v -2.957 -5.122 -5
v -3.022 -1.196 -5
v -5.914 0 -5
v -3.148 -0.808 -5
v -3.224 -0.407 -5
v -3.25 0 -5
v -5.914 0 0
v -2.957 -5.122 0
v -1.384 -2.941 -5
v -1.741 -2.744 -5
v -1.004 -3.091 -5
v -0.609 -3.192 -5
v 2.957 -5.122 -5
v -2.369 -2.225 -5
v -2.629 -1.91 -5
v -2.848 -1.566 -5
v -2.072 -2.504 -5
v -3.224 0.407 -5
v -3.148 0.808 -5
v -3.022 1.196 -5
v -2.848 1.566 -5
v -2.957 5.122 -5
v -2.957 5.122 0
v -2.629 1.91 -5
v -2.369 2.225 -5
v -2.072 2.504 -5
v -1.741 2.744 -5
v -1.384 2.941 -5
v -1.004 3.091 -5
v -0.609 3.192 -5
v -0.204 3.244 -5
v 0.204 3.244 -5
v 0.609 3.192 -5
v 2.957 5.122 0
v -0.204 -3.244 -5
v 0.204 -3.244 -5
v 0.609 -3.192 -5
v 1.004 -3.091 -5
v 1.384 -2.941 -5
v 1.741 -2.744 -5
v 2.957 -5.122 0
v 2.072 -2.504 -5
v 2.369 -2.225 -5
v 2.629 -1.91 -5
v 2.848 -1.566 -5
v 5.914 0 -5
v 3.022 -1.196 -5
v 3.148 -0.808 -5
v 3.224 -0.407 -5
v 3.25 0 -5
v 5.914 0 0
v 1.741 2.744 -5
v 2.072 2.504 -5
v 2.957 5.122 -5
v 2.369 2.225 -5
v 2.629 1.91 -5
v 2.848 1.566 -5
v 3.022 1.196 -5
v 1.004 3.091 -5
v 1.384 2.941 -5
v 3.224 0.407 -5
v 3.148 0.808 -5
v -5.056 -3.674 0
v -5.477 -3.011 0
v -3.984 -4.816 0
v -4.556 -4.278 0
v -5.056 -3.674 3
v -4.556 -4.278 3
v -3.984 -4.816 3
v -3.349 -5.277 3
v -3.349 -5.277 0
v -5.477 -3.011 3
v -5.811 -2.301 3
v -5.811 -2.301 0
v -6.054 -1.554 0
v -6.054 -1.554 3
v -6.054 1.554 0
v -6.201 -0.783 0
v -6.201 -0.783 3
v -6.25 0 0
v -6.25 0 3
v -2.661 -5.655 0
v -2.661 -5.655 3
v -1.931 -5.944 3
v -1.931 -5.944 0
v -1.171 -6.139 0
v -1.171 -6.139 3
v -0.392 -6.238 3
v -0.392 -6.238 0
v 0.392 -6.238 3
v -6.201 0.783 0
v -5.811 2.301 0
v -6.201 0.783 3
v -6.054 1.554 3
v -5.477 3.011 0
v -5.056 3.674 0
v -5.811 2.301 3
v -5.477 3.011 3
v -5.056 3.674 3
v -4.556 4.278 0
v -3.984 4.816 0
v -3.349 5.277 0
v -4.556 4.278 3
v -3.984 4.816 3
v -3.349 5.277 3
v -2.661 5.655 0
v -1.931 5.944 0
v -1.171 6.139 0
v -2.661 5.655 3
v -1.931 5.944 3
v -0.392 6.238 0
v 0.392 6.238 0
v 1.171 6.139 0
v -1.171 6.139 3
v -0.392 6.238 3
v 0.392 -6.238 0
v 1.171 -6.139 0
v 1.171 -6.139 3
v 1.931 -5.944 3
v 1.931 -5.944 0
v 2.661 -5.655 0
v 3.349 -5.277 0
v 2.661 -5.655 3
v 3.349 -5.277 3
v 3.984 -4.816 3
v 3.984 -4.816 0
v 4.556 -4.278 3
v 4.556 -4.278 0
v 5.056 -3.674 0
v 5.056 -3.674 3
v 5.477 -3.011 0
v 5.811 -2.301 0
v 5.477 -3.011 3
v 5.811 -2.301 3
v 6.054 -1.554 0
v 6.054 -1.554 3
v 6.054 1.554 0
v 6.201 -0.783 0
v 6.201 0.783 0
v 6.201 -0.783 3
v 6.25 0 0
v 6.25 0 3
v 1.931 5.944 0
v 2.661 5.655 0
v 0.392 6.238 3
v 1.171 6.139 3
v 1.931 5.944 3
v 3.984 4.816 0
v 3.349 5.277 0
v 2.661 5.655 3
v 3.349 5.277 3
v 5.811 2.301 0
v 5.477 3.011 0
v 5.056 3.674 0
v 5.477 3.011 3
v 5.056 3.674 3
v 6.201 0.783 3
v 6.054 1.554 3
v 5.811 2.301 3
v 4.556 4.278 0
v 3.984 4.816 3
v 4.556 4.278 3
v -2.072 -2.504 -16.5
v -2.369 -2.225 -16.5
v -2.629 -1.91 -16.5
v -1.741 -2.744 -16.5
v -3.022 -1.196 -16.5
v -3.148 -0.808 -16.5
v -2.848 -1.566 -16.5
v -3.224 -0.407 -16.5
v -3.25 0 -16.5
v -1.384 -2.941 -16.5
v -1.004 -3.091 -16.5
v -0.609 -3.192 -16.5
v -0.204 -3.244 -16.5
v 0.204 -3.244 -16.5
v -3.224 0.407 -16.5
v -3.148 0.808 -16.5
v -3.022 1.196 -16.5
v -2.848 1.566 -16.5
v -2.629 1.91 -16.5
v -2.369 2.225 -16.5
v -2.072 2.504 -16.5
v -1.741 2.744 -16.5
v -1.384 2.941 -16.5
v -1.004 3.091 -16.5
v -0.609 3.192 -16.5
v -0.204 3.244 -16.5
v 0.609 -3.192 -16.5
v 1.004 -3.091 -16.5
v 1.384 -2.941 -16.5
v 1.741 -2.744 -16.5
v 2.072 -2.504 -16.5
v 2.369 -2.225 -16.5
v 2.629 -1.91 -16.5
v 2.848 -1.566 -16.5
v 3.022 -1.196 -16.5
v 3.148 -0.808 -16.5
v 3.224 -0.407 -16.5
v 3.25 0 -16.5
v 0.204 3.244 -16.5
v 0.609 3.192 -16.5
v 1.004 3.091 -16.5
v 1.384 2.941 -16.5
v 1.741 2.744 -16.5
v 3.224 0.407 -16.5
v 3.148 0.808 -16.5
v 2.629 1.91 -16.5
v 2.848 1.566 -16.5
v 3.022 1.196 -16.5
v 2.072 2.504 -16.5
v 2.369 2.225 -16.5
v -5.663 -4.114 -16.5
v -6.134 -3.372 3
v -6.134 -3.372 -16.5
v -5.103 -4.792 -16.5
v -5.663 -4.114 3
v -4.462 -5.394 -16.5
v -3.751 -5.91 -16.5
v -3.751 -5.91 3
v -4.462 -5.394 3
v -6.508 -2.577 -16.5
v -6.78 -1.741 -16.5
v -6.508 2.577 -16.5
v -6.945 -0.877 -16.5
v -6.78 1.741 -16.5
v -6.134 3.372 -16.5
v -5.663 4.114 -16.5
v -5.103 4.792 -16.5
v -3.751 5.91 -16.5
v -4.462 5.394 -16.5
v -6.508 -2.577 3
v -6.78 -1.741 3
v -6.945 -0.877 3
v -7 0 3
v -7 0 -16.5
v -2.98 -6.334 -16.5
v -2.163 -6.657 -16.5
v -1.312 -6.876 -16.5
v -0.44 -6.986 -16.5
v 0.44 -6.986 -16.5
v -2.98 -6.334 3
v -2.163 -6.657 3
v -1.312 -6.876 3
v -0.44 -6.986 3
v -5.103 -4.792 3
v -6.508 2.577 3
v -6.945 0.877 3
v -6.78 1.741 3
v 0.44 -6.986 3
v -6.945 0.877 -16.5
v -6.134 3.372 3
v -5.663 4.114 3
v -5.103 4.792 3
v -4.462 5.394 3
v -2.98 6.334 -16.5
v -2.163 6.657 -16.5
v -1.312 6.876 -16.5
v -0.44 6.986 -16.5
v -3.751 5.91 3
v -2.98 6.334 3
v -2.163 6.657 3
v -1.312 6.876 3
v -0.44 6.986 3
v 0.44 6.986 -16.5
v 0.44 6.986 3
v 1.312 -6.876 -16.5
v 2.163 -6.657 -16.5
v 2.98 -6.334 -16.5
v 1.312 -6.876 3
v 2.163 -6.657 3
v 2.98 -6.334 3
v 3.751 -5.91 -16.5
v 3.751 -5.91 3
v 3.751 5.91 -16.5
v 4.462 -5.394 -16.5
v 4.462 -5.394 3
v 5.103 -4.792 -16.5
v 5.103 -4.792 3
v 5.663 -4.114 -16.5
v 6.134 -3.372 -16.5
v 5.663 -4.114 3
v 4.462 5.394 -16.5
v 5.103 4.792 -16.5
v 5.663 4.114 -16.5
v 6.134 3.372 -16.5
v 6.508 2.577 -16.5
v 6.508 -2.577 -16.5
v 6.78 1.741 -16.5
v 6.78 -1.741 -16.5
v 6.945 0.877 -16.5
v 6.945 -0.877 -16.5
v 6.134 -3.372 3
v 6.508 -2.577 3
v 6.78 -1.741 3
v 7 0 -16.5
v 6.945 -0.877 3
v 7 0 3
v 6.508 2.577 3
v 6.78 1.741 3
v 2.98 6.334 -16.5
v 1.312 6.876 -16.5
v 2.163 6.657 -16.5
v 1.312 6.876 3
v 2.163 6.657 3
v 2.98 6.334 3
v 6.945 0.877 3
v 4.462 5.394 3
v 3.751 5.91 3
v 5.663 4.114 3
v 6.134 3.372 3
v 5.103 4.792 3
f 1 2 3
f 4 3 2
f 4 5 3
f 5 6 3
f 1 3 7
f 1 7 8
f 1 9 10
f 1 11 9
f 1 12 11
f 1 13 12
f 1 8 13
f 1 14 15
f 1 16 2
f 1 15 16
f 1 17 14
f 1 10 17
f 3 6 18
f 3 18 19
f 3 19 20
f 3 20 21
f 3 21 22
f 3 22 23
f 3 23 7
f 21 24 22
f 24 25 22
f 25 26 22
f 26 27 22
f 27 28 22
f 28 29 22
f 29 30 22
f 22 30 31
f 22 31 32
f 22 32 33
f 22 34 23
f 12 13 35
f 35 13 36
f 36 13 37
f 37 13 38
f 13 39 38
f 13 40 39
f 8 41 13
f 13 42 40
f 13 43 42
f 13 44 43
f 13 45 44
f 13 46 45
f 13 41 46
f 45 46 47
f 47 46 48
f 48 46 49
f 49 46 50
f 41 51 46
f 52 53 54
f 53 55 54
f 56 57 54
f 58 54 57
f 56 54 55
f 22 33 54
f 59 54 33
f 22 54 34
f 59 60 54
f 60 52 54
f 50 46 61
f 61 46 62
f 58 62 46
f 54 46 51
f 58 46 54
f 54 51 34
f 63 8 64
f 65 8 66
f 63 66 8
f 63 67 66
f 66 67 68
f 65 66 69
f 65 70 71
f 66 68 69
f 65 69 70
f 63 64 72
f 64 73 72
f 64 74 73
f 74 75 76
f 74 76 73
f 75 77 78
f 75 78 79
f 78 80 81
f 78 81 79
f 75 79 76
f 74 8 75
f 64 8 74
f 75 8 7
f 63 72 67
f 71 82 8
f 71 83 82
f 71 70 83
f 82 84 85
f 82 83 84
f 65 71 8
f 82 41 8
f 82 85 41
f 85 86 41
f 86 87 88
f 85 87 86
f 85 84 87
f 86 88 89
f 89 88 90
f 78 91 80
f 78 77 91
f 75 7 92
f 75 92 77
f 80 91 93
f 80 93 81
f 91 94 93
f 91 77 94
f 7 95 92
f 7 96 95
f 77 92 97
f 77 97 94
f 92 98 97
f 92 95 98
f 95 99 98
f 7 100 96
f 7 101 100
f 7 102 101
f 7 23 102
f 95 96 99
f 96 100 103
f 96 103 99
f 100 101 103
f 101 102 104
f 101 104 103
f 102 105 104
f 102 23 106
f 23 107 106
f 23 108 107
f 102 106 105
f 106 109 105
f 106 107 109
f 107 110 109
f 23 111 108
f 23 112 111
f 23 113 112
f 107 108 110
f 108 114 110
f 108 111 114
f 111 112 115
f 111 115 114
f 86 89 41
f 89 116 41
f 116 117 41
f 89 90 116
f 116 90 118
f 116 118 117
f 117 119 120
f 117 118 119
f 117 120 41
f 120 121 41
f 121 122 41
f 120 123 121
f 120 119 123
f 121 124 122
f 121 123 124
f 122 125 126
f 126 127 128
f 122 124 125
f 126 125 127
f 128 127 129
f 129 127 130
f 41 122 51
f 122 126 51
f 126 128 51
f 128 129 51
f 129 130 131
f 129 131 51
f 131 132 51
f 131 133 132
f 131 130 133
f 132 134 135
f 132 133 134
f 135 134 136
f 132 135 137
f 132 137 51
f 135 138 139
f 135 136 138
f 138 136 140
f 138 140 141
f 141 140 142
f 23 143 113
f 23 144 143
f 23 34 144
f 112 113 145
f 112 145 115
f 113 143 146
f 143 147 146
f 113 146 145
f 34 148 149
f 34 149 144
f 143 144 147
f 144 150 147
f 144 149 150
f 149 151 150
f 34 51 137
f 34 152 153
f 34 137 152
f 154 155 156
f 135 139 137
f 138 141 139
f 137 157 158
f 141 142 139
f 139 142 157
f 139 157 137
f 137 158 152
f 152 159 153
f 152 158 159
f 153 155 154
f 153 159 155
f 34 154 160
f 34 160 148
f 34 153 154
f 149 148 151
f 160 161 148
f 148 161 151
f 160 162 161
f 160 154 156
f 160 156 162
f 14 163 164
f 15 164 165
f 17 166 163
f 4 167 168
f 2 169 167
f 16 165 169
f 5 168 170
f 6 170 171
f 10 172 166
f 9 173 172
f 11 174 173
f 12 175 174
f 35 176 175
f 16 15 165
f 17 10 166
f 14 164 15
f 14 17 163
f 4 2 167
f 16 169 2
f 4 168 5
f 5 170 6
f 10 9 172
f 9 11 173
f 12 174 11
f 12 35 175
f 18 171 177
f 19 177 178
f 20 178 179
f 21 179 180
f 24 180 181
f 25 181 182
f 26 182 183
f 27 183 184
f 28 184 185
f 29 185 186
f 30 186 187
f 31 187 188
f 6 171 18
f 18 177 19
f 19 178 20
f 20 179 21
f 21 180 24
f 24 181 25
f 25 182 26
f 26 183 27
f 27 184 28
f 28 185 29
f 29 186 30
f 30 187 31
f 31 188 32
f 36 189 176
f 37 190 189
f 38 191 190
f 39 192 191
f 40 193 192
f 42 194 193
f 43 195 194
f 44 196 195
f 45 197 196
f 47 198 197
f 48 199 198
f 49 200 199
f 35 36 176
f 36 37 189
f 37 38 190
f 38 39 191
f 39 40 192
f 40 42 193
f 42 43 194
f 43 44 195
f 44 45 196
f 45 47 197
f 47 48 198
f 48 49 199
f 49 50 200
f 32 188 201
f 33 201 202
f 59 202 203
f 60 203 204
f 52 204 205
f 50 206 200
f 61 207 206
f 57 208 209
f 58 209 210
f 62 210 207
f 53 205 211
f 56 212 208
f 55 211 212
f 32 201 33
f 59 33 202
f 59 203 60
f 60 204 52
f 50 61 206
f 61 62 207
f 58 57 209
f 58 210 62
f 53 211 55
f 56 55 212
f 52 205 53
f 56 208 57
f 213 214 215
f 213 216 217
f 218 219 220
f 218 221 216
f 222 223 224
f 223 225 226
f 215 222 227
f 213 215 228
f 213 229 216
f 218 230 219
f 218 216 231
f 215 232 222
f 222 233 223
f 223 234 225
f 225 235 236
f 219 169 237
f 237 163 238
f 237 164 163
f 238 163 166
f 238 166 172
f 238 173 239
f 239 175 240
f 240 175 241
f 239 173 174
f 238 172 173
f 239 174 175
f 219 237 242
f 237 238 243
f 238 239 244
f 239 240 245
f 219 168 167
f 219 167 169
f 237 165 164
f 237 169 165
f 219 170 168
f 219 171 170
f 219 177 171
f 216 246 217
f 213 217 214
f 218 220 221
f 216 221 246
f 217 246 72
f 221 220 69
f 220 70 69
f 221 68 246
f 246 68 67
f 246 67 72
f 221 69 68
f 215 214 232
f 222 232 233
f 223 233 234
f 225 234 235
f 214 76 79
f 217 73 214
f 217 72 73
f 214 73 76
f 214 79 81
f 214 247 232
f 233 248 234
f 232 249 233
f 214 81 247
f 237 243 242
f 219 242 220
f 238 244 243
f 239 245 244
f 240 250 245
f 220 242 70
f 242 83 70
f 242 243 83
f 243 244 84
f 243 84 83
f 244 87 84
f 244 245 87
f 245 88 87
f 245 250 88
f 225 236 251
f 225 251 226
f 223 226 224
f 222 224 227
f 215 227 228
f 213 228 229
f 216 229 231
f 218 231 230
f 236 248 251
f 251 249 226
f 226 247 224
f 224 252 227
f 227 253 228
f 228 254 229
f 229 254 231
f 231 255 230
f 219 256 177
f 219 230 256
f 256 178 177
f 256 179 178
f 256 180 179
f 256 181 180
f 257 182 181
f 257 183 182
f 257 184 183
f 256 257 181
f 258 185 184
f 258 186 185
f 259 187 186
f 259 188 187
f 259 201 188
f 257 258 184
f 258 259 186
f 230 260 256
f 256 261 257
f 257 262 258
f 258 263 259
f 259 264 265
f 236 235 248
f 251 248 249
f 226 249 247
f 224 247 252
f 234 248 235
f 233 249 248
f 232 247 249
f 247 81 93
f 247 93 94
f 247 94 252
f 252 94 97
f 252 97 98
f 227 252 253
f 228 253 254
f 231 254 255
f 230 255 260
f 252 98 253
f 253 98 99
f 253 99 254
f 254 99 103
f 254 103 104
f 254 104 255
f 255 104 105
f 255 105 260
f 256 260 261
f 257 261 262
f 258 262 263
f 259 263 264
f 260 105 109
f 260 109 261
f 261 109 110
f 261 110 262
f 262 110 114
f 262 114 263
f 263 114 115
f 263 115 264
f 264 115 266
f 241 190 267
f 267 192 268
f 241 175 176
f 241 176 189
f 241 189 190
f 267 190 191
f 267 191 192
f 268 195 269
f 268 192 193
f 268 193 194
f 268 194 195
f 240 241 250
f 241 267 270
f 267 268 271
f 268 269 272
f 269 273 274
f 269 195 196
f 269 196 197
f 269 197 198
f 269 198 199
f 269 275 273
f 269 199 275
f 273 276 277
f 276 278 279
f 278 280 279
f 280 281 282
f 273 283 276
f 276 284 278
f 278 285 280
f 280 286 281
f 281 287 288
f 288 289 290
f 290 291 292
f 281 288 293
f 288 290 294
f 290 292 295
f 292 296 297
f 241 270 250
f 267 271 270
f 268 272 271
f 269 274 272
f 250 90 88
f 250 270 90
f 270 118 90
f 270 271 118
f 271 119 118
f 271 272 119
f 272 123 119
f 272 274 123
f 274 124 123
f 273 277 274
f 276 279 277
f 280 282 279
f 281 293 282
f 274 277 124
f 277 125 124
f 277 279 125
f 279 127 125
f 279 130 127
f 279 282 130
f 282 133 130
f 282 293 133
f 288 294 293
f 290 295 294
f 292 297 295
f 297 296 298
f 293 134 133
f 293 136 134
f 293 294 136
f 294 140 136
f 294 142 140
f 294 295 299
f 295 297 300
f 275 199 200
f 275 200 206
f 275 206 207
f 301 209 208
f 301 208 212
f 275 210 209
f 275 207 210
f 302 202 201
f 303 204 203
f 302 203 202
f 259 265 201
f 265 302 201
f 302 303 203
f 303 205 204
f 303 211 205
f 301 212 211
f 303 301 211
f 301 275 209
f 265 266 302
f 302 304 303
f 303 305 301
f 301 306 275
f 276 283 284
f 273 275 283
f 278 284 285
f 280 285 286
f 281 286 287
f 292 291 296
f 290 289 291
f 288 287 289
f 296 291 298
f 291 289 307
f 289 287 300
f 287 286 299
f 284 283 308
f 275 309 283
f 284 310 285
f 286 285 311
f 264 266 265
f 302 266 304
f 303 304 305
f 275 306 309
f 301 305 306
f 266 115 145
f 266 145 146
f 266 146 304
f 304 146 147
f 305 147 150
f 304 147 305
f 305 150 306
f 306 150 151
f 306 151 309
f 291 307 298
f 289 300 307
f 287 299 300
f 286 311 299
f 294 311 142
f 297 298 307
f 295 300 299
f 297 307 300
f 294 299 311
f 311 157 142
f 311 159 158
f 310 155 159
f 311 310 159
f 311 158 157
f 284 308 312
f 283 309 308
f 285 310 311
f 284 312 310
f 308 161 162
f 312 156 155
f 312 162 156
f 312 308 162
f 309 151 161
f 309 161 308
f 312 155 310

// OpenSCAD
$fn = 50;

difference() {
	union() {
		translate(v = [0, 0, -16.5]) {
			cylinder(h = 19.5, r = 7.0);
		}
	}
	union() {
		translate(v = [0, 0, 0]) {
			rotate(a = [0, 0, 0]) {
				difference() {
					union() {
						translate(v = [0, 0, -5]) {
							linear_extrude(height = 5) {
								polygon(points = [[5.914249999999999, 0.0], [2.957125, 5.1218907443321156], [-2.9571249999999982, 5.1218907443321156], [-5.914249999999999, 7.242867331857232e-16], [-2.9571250000000022, -5.121890744332115], [2.9571249999999956, -5.121890744332118]]);
							}
						}
					}
					union();
				}
			}
		}
		#cylinder(h = 3, r = 6.25);
		#translate(v = [0, 0, -100.0]) {
			cylinder(h = 200, r = 3.25);
		}
	}
}
